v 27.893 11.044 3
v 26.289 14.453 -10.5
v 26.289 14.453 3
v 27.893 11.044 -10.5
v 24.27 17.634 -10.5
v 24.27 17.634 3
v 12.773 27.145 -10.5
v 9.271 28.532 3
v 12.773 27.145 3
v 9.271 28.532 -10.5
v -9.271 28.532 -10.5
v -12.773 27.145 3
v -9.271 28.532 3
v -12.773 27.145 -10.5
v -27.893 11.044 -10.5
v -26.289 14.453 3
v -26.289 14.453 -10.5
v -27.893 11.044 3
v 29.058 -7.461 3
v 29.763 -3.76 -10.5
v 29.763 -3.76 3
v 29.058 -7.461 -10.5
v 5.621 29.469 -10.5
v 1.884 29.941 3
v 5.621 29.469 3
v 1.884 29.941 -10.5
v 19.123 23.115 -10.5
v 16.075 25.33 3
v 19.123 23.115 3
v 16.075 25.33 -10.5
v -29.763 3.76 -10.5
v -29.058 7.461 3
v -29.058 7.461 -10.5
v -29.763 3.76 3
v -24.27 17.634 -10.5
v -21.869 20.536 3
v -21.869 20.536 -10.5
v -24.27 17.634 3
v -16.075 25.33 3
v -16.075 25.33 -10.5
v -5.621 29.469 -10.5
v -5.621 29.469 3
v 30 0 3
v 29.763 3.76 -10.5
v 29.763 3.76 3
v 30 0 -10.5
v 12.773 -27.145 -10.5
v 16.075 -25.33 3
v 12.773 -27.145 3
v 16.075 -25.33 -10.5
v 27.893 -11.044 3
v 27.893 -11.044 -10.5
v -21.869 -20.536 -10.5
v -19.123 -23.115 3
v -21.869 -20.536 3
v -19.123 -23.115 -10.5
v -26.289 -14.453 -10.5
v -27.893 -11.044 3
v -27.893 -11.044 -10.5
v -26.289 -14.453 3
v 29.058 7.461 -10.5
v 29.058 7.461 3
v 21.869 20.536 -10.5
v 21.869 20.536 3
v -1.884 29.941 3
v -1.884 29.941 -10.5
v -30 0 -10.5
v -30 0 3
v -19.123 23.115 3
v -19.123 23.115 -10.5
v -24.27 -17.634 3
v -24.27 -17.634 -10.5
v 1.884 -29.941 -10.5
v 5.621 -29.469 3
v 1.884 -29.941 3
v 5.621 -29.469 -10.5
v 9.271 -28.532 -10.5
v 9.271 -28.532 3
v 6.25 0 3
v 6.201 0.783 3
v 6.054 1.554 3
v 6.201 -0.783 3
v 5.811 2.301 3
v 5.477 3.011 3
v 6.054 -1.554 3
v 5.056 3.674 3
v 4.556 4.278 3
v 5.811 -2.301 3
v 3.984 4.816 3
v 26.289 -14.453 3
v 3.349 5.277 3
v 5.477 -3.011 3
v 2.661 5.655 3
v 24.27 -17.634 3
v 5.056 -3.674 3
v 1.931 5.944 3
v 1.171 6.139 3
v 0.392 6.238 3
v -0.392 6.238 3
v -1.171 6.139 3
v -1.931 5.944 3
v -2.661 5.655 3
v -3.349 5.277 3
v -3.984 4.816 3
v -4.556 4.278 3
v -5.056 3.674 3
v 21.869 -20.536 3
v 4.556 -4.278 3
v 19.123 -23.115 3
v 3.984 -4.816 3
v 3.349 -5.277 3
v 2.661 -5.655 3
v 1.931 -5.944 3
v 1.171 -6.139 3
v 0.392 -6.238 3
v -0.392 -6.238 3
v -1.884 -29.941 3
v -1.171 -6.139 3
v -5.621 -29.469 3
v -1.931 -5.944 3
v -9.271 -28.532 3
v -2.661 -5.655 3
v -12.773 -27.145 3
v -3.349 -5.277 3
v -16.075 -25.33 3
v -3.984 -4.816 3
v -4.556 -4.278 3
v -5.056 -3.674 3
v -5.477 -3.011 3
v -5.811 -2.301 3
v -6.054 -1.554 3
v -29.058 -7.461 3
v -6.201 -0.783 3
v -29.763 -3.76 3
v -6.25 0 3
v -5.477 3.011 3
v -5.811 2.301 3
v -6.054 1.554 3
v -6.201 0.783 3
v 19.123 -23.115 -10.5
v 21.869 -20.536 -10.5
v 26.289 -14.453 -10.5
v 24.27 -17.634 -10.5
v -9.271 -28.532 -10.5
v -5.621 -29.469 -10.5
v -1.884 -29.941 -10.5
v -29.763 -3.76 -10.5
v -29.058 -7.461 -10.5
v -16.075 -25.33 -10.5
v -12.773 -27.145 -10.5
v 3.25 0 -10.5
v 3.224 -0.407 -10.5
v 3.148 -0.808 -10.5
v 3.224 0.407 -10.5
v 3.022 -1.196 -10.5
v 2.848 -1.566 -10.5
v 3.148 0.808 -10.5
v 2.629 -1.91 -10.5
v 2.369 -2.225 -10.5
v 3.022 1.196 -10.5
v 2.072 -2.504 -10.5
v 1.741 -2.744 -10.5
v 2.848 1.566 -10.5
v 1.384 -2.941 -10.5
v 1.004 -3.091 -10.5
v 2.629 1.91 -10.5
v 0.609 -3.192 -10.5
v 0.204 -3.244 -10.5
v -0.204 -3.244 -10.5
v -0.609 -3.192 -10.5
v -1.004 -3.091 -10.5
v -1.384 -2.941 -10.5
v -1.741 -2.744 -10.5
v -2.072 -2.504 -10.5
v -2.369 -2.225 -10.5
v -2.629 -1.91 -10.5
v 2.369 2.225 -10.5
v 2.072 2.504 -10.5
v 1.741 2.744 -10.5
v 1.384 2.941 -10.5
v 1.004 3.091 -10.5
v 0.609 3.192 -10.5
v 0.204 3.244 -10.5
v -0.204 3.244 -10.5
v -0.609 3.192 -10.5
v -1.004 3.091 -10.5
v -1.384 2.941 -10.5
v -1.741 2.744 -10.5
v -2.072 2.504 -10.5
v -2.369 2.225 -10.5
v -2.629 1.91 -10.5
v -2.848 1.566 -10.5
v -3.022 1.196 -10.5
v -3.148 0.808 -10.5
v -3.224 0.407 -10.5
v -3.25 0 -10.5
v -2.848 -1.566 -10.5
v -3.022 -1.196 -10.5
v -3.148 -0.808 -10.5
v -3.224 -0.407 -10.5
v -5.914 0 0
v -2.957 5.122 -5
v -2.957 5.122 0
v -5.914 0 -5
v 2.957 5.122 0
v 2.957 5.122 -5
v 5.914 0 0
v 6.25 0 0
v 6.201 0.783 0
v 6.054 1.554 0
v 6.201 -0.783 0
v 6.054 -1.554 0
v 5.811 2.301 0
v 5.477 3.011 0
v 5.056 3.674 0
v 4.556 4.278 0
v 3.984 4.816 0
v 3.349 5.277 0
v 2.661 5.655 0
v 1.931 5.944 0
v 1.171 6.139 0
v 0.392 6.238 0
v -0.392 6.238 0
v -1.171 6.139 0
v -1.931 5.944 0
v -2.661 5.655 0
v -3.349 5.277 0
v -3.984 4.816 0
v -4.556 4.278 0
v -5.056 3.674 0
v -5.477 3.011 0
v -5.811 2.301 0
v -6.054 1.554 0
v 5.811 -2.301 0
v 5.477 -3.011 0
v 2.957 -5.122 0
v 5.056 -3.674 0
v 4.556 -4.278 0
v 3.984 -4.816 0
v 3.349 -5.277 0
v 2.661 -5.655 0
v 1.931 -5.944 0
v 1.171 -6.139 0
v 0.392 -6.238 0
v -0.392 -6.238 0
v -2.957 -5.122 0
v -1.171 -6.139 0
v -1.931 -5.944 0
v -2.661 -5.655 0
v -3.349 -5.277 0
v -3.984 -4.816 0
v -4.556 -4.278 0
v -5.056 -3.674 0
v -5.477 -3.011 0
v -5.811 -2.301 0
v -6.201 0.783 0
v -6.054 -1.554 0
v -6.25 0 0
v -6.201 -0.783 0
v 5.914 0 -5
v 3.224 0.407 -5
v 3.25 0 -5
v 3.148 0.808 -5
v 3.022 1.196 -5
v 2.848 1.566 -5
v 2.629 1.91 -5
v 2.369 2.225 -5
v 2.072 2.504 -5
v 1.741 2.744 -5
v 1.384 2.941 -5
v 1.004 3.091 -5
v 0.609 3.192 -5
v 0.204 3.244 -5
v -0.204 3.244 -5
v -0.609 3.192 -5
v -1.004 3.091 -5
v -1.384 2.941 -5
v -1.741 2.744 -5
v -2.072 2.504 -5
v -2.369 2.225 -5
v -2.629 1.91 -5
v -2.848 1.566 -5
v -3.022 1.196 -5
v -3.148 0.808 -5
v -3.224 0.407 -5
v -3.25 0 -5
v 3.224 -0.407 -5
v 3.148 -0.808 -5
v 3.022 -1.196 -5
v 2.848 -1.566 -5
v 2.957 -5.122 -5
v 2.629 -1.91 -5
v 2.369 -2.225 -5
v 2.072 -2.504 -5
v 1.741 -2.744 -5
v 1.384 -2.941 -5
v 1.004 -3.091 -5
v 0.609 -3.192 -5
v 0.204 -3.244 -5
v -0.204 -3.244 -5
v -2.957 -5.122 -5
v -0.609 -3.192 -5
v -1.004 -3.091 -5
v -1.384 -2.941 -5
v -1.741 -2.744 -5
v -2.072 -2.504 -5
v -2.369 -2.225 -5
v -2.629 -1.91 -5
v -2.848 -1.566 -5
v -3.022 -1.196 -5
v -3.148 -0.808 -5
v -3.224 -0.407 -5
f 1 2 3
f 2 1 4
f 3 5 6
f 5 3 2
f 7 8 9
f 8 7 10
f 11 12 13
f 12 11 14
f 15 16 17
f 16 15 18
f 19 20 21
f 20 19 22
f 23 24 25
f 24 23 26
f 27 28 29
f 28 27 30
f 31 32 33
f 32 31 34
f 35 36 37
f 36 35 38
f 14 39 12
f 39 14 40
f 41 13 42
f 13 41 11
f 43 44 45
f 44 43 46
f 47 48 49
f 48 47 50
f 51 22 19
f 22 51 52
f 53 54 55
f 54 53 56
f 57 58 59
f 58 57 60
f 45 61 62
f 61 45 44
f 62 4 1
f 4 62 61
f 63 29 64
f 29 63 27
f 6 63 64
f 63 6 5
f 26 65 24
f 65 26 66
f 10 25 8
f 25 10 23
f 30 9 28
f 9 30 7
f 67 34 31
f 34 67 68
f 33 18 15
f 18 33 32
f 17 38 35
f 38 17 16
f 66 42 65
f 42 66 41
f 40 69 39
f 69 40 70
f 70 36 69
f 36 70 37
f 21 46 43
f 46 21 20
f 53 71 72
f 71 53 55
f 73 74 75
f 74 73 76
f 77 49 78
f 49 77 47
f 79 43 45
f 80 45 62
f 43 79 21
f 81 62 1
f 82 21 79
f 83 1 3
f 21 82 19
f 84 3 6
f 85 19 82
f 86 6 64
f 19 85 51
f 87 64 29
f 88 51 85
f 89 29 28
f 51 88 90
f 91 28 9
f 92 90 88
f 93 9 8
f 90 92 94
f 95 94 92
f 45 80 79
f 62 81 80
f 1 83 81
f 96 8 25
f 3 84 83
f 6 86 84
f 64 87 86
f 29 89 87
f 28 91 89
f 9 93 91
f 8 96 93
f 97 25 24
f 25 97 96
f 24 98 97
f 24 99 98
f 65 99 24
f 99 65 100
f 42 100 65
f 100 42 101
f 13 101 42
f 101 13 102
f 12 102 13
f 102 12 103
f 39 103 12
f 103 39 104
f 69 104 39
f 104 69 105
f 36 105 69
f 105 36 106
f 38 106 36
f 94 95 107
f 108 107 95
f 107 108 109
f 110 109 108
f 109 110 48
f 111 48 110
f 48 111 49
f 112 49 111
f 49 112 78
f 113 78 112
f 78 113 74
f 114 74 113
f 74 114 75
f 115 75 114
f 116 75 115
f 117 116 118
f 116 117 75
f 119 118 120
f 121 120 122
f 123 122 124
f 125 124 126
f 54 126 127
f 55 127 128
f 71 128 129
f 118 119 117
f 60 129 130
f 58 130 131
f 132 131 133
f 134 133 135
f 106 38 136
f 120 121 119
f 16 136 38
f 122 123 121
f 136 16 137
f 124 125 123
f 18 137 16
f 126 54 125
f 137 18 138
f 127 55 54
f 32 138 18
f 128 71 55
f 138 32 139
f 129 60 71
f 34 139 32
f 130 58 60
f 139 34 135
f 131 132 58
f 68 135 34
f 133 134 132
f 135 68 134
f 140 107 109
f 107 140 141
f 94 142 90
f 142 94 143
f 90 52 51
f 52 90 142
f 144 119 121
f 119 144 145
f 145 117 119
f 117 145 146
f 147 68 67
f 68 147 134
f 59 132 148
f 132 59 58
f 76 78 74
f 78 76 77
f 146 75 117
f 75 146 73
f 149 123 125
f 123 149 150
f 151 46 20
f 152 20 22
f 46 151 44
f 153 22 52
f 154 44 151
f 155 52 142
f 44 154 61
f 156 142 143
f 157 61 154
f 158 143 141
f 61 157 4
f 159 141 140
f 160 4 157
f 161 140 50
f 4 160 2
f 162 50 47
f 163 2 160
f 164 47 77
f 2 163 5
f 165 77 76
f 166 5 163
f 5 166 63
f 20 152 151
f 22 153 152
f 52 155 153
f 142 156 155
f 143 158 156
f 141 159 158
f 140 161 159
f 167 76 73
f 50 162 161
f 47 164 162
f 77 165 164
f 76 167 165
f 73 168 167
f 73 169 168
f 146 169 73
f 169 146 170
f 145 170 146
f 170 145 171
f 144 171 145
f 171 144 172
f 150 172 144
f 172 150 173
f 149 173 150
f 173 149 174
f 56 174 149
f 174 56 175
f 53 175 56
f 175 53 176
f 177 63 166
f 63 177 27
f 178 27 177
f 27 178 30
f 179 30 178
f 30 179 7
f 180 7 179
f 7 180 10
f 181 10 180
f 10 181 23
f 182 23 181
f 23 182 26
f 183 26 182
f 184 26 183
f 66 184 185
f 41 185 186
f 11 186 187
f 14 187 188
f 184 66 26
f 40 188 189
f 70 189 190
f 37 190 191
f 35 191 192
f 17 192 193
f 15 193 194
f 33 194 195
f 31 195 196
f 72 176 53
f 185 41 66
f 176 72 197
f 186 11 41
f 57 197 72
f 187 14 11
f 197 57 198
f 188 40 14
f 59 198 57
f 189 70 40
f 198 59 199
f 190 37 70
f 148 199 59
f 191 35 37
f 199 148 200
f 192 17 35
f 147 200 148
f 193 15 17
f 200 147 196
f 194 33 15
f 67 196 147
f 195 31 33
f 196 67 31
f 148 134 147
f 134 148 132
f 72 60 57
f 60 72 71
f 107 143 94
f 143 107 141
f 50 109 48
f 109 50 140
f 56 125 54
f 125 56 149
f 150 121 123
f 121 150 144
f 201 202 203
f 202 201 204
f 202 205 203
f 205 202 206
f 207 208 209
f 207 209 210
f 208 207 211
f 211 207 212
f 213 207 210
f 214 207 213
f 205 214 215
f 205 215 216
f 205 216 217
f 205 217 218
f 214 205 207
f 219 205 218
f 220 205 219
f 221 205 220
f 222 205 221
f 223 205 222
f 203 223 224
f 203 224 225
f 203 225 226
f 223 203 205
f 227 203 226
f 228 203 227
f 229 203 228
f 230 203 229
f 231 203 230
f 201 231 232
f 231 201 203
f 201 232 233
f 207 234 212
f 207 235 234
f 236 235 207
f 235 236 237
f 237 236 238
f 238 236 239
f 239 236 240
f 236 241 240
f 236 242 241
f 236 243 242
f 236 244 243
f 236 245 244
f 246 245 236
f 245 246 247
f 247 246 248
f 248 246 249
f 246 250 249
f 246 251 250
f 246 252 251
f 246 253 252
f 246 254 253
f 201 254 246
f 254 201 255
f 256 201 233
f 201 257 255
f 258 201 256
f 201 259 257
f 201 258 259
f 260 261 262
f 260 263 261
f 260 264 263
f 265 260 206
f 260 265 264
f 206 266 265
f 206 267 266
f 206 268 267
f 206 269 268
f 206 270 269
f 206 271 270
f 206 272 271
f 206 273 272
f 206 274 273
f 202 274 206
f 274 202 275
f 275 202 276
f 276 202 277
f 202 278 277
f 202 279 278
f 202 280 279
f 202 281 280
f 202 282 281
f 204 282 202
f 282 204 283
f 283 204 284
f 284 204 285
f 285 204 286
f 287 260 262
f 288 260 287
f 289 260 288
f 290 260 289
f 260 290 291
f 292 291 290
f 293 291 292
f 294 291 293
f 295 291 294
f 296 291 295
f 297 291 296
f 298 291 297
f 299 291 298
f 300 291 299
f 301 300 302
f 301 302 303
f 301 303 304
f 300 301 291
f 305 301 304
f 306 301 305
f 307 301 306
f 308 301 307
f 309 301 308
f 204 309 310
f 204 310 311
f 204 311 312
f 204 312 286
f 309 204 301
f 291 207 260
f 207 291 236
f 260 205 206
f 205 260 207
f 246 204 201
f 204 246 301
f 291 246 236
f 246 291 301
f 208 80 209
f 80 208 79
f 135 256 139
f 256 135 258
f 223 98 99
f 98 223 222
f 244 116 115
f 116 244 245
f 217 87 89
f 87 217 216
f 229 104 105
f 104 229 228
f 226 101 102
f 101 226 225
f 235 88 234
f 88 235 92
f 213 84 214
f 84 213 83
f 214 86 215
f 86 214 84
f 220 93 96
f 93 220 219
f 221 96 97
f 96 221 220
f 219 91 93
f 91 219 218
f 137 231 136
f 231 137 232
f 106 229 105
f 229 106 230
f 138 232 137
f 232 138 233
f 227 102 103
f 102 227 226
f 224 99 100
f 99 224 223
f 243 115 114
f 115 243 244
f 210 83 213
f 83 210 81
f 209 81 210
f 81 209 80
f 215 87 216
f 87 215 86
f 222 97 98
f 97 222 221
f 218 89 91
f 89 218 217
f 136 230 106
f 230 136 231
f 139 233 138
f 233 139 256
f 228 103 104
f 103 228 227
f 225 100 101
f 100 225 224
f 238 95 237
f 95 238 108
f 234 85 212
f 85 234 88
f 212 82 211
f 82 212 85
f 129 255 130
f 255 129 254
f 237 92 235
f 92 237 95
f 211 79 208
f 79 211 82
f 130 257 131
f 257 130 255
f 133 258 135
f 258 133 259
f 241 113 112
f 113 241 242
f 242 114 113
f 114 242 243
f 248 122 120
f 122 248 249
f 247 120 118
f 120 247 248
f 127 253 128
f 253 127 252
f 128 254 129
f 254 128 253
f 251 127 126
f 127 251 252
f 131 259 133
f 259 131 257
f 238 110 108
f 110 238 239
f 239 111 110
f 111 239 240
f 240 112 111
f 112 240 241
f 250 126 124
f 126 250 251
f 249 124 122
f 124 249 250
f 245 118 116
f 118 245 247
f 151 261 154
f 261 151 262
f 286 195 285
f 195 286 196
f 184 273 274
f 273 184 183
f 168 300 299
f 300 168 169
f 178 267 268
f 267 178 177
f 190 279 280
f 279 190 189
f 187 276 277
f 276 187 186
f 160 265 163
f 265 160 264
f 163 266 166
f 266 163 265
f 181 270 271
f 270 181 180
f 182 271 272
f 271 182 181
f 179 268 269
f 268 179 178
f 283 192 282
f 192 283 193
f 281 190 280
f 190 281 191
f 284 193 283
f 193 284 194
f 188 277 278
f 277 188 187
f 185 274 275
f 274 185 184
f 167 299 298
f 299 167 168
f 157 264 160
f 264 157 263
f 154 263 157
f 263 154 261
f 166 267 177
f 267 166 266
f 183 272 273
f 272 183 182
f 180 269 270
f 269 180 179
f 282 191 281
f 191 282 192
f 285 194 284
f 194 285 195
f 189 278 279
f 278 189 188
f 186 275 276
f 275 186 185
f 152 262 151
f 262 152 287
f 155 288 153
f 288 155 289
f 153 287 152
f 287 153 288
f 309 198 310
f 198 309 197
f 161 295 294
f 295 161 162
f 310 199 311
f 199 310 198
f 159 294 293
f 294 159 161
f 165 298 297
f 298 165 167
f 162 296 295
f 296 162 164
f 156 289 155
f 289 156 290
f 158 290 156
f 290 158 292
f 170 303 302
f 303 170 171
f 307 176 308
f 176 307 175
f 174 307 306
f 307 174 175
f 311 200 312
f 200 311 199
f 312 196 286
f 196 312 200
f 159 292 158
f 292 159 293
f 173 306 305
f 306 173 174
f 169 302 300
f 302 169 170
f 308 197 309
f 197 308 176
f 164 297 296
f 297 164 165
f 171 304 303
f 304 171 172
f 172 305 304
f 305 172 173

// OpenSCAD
$fn = 50;


difference() {
	union() {
		translate(v = [0, 0, -10.5000000000]) {
			cylinder(h = 13.5000000000, r = 30.0000000000);
		}
		#translate(v = [0, 0, -12.0000000000]) {
			cylinder(h = 12, r = 2.8750000000);
		}
	}
	union() {
		translate(v = [0, 0, 0]) {
			rotate(a = [0, 0, 0]) {
				difference() {
					union() {
						translate(v = [0, 0, -5]) {
							linear_extrude(height = 5) {
								polygon(points = [[5.9142500000, 0.0000000000], [2.9571250000, 5.1218907443], [-2.9571250000, 5.1218907443], [-5.9142500000, 0.0000000000], [-2.9571250000, -5.1218907443], [2.9571250000, -5.1218907443]]);
							}
						}
					}
					union();
				}
			}
		}
		#cylinder(h = 3, r = 6.2500000000);
		#translate(v = [0, 0, -100.0000000000]) {
			cylinder(h = 200, r = 3.2500000000);
		}
	}
}
